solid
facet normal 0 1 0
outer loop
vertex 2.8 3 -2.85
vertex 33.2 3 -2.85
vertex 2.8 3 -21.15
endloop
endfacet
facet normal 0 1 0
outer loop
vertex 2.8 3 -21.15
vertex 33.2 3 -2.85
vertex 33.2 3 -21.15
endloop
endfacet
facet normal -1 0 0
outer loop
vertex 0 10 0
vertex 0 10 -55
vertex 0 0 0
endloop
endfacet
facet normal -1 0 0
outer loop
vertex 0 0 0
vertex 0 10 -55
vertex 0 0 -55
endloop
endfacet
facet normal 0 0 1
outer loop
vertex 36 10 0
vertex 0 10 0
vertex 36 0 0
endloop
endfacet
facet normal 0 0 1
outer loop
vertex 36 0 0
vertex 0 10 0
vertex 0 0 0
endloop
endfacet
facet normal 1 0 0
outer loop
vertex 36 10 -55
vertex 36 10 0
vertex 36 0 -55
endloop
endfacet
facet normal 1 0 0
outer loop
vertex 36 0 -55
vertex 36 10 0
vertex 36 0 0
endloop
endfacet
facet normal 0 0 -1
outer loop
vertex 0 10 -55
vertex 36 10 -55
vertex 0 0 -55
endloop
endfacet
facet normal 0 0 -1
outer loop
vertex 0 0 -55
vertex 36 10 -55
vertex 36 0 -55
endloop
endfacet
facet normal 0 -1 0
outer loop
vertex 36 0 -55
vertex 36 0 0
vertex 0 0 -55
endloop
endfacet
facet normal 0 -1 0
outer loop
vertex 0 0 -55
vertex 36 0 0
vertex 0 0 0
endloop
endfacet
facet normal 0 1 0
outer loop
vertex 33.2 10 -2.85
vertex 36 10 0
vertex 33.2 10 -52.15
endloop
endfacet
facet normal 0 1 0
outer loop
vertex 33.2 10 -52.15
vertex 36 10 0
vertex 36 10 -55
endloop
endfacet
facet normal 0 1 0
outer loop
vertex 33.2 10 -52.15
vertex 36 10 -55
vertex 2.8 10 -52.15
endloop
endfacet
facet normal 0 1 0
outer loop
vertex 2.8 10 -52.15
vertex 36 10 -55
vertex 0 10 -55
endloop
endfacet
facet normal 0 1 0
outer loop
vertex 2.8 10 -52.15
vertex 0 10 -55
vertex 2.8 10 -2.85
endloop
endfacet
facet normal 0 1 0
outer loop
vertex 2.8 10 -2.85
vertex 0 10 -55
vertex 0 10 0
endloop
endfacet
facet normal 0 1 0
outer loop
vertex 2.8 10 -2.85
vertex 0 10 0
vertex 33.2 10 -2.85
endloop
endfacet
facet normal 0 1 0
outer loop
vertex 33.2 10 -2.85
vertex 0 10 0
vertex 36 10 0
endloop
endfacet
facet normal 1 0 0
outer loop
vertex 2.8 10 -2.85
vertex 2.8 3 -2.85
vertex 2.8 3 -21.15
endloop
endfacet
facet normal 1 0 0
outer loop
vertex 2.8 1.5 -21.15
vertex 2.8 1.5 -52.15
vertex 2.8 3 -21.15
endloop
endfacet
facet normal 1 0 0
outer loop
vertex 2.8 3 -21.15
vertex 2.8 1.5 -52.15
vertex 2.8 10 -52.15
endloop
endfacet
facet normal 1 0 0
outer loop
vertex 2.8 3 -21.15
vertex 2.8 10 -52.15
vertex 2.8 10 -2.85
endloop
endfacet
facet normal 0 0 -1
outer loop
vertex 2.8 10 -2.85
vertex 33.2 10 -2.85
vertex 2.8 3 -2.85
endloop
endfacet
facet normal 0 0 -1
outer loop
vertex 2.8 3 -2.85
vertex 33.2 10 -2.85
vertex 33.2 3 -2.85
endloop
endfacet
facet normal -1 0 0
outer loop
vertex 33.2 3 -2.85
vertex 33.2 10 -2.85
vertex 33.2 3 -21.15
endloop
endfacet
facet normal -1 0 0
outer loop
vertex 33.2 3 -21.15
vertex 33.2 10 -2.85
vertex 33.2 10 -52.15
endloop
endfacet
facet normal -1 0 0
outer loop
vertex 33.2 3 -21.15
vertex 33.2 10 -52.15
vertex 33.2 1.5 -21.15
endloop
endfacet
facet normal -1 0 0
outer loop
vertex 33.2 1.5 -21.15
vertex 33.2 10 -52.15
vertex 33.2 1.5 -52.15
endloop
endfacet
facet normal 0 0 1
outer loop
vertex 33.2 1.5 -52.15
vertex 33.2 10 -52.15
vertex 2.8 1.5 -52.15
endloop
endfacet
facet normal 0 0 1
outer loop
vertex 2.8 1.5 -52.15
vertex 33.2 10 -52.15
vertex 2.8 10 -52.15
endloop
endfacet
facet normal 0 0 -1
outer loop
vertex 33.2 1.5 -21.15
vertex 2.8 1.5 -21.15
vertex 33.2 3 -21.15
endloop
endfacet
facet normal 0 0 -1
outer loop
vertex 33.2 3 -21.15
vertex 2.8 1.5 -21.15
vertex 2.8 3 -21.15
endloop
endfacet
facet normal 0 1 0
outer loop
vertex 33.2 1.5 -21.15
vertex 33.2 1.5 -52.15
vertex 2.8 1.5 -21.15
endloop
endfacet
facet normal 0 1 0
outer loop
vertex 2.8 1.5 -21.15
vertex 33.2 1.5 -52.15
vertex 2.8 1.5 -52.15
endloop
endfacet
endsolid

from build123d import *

# Parameters (mm, degrees)
SKETCH1_W           = 36
SKETCH1_H           = 55
BOSS_EXTRUDE1_DEPTH = 3
SKETCH2_W           = 36
SKETCH2_H           = 55
SKETCH2_W_2         = 30.4
SKETCH2_H_2         = 49.3
BOSS_EXTRUDE2_DEPTH = 7
SKETCH3_W           = 30.4
SKETCH3_H           = 31
CUT_EXTRUDE1_DEPTH  = 1.5


with BuildPart() as part:
    # Sketch1 → Boss-Extrude1 (new body)
    with BuildSketch(Plane(origin=(0, 0, 0), x_dir=(1, 0, 0), z_dir=(0, 1, 0))):
        with Locations((18, 27.5)):
            Rectangle(SKETCH1_W, SKETCH1_H)
    extrude(amount=BOSS_EXTRUDE1_DEPTH)

    # Sketch2 → Boss-Extrude2 (add)
    with BuildSketch(Plane(origin=(0, 3, 0), x_dir=(1, 0, 0), z_dir=(0, 1, 0))):
        with Locations((18, 27.5)):
            Rectangle(SKETCH2_W, SKETCH2_H)
        with Locations((18, 27.5)):
            Rectangle(SKETCH2_W_2, SKETCH2_H_2, mode=Mode.SUBTRACT)
    extrude(amount=BOSS_EXTRUDE2_DEPTH)

    # Sketch3 → Cut-Extrude1 (cut)
    with BuildSketch(Plane(origin=(0, 3, 0), x_dir=(1, 0, 0), z_dir=(0, 1, 0))):
        with Locations((18, 36.65)):
            Rectangle(SKETCH3_W, SKETCH3_H)
    extrude(amount=-CUT_EXTRUDE1_DEPTH, mode=Mode.SUBTRACT)


solid = part.part
